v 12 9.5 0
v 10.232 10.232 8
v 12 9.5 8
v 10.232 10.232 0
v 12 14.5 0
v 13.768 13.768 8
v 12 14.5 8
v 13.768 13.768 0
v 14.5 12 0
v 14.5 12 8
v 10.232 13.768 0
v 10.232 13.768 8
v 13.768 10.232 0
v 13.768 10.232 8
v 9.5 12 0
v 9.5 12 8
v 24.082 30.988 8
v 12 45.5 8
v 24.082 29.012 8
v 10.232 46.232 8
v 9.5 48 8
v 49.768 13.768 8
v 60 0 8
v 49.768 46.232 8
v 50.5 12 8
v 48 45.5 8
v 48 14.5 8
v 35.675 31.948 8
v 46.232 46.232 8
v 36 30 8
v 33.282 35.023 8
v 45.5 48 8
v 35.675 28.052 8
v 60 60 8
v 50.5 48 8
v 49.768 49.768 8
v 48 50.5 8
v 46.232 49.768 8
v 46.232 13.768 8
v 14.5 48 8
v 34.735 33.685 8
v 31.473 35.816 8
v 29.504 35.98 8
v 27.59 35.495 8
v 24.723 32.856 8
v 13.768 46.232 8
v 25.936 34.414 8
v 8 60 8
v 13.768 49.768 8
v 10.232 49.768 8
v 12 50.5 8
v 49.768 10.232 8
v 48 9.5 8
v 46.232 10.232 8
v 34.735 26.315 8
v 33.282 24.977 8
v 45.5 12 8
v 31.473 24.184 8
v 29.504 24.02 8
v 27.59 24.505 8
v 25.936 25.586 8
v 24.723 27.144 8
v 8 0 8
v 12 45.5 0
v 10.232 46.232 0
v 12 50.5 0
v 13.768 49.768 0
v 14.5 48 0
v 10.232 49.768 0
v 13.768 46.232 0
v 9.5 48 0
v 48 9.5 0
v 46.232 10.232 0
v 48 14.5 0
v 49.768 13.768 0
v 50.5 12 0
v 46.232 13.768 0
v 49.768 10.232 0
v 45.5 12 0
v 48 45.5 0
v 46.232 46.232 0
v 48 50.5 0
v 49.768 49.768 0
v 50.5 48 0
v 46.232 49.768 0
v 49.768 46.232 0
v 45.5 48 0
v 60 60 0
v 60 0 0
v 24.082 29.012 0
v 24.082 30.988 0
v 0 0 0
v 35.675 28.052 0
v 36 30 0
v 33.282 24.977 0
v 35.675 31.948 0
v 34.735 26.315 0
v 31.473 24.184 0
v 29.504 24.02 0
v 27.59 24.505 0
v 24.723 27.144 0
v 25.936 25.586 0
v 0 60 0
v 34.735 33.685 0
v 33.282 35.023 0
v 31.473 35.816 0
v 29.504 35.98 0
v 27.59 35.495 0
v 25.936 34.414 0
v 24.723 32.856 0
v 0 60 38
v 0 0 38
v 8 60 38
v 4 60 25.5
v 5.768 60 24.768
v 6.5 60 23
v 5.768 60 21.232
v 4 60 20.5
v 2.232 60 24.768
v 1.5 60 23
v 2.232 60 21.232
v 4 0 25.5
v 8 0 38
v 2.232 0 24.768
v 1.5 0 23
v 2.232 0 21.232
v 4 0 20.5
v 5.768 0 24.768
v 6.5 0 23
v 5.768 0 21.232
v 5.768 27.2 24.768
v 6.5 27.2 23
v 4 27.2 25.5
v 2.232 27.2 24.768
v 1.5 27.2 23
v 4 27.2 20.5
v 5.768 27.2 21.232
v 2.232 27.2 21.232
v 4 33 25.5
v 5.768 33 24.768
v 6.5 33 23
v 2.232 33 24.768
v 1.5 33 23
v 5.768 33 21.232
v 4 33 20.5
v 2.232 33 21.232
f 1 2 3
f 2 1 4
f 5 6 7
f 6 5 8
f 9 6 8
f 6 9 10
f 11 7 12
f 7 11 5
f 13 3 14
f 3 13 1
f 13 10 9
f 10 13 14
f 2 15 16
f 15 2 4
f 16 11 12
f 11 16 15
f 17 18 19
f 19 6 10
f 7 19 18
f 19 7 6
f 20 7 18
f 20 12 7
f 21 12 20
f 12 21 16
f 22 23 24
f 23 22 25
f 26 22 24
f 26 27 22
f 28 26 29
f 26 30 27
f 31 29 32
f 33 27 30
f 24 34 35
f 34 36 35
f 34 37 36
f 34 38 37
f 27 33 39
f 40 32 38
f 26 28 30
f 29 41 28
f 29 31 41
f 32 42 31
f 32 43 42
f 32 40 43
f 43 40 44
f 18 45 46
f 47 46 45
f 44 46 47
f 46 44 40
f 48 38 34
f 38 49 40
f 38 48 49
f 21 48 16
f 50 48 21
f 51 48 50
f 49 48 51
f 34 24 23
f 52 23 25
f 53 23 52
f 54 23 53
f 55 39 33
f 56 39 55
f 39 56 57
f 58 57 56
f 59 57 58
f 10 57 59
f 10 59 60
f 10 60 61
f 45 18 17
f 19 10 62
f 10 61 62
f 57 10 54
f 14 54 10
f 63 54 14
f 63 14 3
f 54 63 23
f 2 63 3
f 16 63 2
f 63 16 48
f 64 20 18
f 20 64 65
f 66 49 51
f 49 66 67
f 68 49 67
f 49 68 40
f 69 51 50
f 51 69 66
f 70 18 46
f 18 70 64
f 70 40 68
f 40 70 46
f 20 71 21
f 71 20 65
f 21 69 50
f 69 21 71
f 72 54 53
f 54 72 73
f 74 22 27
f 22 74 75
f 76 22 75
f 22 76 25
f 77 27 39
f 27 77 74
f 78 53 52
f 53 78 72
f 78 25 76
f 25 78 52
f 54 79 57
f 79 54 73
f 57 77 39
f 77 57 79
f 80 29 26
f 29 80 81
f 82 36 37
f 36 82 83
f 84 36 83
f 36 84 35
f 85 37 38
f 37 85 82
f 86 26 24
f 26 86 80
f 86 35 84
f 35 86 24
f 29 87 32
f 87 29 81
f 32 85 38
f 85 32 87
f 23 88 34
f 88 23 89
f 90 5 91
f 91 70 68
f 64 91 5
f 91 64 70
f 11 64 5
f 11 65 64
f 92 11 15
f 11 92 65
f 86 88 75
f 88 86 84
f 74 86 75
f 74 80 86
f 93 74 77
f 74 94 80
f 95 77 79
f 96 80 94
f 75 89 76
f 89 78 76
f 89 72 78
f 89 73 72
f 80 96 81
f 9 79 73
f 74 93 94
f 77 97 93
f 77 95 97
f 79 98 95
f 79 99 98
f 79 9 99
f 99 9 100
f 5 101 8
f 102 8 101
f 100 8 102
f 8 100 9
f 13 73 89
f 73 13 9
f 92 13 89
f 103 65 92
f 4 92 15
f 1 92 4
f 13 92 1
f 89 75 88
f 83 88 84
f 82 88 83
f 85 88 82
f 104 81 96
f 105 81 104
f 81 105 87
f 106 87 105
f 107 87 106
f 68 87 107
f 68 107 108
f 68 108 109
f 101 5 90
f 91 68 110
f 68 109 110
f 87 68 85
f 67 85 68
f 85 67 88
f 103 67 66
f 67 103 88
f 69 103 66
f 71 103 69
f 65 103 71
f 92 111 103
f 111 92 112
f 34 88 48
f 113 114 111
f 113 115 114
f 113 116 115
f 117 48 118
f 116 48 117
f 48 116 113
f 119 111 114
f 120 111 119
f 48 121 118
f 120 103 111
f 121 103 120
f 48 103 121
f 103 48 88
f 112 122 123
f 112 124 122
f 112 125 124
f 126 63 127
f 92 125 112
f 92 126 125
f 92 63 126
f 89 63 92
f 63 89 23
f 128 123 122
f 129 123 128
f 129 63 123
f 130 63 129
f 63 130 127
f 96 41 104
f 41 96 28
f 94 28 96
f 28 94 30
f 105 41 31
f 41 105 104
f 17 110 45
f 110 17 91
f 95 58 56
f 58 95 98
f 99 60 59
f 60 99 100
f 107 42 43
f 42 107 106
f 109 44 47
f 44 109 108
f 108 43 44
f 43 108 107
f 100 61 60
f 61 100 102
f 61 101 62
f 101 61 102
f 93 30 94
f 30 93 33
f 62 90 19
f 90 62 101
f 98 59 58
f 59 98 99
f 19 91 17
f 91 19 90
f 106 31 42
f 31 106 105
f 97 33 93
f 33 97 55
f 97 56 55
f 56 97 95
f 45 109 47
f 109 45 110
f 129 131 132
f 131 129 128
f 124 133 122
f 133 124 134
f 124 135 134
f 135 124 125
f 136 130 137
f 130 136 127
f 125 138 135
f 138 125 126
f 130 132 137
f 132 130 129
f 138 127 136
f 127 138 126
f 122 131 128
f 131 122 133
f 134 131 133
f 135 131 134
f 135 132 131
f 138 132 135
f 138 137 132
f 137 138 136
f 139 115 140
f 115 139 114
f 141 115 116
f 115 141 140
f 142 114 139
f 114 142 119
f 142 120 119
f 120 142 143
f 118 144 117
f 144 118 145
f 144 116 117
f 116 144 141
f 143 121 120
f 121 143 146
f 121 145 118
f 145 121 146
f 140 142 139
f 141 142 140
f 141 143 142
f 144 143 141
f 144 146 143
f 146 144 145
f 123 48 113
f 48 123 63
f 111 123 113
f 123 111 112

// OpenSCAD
// Parameters
l_bracket_length = 60; // Length of the L-bracket base
l_bracket_width = 60;  // Width of the L-bracket base
l_bracket_height = 30; // Height of the vertical section
thickness = 8;         // Increased thickness for better structure
hole_diameter = 12;    // Increased diameter of the central hole
mounting_hole_diameter = 5; // Diameter of the smaller mounting holes
mounting_hole_offset = 12;  // Adjusted distance from the edges to the mounting holes

// Function to create a hole
module create_hole(diameter, depth) {
    translate([0, 0, -0.1]) // Slightly offset to ensure through cut
        cylinder(d=diameter, h=depth + 0.2, center=true);
}

// Main L-bracket
module l_bracket() {
    // Base section
    difference() {
        cube([l_bracket_length, l_bracket_width, thickness], center=false);
        // Central hole (aligned and enlarged)
        translate([l_bracket_length / 2, l_bracket_width / 2, thickness / 2])
            create_hole(hole_diameter, thickness);
        // Mounting holes (symmetrical placement)
        for (x = [-1, 1])
            for (y = [-1, 1])
                translate([
                    l_bracket_length / 2 + x * (l_bracket_length / 2 - mounting_hole_offset),
                    l_bracket_width / 2 + y * (l_bracket_width / 2 - mounting_hole_offset),
                    thickness / 2
                ])
                    create_hole(mounting_hole_diameter, thickness);
    }

    // Vertical section
    translate([0, 0, thickness]) {
        difference() {
            cube([thickness, l_bracket_width, l_bracket_height], center=false);
            // Mounting holes on the vertical section (aligned and symmetrical)
            for (y = [-1, 1])
                translate([
                    thickness / 2,
                    l_bracket_width / 2 + y * (l_bracket_width / 2 - mounting_hole_offset),
                    l_bracket_height / 2
                ])
                    rotate([90, 0, 0])
                        create_hole(mounting_hole_diameter, l_bracket_height);
        }
    }
}

// Render the L-bracket
l_bracket();
